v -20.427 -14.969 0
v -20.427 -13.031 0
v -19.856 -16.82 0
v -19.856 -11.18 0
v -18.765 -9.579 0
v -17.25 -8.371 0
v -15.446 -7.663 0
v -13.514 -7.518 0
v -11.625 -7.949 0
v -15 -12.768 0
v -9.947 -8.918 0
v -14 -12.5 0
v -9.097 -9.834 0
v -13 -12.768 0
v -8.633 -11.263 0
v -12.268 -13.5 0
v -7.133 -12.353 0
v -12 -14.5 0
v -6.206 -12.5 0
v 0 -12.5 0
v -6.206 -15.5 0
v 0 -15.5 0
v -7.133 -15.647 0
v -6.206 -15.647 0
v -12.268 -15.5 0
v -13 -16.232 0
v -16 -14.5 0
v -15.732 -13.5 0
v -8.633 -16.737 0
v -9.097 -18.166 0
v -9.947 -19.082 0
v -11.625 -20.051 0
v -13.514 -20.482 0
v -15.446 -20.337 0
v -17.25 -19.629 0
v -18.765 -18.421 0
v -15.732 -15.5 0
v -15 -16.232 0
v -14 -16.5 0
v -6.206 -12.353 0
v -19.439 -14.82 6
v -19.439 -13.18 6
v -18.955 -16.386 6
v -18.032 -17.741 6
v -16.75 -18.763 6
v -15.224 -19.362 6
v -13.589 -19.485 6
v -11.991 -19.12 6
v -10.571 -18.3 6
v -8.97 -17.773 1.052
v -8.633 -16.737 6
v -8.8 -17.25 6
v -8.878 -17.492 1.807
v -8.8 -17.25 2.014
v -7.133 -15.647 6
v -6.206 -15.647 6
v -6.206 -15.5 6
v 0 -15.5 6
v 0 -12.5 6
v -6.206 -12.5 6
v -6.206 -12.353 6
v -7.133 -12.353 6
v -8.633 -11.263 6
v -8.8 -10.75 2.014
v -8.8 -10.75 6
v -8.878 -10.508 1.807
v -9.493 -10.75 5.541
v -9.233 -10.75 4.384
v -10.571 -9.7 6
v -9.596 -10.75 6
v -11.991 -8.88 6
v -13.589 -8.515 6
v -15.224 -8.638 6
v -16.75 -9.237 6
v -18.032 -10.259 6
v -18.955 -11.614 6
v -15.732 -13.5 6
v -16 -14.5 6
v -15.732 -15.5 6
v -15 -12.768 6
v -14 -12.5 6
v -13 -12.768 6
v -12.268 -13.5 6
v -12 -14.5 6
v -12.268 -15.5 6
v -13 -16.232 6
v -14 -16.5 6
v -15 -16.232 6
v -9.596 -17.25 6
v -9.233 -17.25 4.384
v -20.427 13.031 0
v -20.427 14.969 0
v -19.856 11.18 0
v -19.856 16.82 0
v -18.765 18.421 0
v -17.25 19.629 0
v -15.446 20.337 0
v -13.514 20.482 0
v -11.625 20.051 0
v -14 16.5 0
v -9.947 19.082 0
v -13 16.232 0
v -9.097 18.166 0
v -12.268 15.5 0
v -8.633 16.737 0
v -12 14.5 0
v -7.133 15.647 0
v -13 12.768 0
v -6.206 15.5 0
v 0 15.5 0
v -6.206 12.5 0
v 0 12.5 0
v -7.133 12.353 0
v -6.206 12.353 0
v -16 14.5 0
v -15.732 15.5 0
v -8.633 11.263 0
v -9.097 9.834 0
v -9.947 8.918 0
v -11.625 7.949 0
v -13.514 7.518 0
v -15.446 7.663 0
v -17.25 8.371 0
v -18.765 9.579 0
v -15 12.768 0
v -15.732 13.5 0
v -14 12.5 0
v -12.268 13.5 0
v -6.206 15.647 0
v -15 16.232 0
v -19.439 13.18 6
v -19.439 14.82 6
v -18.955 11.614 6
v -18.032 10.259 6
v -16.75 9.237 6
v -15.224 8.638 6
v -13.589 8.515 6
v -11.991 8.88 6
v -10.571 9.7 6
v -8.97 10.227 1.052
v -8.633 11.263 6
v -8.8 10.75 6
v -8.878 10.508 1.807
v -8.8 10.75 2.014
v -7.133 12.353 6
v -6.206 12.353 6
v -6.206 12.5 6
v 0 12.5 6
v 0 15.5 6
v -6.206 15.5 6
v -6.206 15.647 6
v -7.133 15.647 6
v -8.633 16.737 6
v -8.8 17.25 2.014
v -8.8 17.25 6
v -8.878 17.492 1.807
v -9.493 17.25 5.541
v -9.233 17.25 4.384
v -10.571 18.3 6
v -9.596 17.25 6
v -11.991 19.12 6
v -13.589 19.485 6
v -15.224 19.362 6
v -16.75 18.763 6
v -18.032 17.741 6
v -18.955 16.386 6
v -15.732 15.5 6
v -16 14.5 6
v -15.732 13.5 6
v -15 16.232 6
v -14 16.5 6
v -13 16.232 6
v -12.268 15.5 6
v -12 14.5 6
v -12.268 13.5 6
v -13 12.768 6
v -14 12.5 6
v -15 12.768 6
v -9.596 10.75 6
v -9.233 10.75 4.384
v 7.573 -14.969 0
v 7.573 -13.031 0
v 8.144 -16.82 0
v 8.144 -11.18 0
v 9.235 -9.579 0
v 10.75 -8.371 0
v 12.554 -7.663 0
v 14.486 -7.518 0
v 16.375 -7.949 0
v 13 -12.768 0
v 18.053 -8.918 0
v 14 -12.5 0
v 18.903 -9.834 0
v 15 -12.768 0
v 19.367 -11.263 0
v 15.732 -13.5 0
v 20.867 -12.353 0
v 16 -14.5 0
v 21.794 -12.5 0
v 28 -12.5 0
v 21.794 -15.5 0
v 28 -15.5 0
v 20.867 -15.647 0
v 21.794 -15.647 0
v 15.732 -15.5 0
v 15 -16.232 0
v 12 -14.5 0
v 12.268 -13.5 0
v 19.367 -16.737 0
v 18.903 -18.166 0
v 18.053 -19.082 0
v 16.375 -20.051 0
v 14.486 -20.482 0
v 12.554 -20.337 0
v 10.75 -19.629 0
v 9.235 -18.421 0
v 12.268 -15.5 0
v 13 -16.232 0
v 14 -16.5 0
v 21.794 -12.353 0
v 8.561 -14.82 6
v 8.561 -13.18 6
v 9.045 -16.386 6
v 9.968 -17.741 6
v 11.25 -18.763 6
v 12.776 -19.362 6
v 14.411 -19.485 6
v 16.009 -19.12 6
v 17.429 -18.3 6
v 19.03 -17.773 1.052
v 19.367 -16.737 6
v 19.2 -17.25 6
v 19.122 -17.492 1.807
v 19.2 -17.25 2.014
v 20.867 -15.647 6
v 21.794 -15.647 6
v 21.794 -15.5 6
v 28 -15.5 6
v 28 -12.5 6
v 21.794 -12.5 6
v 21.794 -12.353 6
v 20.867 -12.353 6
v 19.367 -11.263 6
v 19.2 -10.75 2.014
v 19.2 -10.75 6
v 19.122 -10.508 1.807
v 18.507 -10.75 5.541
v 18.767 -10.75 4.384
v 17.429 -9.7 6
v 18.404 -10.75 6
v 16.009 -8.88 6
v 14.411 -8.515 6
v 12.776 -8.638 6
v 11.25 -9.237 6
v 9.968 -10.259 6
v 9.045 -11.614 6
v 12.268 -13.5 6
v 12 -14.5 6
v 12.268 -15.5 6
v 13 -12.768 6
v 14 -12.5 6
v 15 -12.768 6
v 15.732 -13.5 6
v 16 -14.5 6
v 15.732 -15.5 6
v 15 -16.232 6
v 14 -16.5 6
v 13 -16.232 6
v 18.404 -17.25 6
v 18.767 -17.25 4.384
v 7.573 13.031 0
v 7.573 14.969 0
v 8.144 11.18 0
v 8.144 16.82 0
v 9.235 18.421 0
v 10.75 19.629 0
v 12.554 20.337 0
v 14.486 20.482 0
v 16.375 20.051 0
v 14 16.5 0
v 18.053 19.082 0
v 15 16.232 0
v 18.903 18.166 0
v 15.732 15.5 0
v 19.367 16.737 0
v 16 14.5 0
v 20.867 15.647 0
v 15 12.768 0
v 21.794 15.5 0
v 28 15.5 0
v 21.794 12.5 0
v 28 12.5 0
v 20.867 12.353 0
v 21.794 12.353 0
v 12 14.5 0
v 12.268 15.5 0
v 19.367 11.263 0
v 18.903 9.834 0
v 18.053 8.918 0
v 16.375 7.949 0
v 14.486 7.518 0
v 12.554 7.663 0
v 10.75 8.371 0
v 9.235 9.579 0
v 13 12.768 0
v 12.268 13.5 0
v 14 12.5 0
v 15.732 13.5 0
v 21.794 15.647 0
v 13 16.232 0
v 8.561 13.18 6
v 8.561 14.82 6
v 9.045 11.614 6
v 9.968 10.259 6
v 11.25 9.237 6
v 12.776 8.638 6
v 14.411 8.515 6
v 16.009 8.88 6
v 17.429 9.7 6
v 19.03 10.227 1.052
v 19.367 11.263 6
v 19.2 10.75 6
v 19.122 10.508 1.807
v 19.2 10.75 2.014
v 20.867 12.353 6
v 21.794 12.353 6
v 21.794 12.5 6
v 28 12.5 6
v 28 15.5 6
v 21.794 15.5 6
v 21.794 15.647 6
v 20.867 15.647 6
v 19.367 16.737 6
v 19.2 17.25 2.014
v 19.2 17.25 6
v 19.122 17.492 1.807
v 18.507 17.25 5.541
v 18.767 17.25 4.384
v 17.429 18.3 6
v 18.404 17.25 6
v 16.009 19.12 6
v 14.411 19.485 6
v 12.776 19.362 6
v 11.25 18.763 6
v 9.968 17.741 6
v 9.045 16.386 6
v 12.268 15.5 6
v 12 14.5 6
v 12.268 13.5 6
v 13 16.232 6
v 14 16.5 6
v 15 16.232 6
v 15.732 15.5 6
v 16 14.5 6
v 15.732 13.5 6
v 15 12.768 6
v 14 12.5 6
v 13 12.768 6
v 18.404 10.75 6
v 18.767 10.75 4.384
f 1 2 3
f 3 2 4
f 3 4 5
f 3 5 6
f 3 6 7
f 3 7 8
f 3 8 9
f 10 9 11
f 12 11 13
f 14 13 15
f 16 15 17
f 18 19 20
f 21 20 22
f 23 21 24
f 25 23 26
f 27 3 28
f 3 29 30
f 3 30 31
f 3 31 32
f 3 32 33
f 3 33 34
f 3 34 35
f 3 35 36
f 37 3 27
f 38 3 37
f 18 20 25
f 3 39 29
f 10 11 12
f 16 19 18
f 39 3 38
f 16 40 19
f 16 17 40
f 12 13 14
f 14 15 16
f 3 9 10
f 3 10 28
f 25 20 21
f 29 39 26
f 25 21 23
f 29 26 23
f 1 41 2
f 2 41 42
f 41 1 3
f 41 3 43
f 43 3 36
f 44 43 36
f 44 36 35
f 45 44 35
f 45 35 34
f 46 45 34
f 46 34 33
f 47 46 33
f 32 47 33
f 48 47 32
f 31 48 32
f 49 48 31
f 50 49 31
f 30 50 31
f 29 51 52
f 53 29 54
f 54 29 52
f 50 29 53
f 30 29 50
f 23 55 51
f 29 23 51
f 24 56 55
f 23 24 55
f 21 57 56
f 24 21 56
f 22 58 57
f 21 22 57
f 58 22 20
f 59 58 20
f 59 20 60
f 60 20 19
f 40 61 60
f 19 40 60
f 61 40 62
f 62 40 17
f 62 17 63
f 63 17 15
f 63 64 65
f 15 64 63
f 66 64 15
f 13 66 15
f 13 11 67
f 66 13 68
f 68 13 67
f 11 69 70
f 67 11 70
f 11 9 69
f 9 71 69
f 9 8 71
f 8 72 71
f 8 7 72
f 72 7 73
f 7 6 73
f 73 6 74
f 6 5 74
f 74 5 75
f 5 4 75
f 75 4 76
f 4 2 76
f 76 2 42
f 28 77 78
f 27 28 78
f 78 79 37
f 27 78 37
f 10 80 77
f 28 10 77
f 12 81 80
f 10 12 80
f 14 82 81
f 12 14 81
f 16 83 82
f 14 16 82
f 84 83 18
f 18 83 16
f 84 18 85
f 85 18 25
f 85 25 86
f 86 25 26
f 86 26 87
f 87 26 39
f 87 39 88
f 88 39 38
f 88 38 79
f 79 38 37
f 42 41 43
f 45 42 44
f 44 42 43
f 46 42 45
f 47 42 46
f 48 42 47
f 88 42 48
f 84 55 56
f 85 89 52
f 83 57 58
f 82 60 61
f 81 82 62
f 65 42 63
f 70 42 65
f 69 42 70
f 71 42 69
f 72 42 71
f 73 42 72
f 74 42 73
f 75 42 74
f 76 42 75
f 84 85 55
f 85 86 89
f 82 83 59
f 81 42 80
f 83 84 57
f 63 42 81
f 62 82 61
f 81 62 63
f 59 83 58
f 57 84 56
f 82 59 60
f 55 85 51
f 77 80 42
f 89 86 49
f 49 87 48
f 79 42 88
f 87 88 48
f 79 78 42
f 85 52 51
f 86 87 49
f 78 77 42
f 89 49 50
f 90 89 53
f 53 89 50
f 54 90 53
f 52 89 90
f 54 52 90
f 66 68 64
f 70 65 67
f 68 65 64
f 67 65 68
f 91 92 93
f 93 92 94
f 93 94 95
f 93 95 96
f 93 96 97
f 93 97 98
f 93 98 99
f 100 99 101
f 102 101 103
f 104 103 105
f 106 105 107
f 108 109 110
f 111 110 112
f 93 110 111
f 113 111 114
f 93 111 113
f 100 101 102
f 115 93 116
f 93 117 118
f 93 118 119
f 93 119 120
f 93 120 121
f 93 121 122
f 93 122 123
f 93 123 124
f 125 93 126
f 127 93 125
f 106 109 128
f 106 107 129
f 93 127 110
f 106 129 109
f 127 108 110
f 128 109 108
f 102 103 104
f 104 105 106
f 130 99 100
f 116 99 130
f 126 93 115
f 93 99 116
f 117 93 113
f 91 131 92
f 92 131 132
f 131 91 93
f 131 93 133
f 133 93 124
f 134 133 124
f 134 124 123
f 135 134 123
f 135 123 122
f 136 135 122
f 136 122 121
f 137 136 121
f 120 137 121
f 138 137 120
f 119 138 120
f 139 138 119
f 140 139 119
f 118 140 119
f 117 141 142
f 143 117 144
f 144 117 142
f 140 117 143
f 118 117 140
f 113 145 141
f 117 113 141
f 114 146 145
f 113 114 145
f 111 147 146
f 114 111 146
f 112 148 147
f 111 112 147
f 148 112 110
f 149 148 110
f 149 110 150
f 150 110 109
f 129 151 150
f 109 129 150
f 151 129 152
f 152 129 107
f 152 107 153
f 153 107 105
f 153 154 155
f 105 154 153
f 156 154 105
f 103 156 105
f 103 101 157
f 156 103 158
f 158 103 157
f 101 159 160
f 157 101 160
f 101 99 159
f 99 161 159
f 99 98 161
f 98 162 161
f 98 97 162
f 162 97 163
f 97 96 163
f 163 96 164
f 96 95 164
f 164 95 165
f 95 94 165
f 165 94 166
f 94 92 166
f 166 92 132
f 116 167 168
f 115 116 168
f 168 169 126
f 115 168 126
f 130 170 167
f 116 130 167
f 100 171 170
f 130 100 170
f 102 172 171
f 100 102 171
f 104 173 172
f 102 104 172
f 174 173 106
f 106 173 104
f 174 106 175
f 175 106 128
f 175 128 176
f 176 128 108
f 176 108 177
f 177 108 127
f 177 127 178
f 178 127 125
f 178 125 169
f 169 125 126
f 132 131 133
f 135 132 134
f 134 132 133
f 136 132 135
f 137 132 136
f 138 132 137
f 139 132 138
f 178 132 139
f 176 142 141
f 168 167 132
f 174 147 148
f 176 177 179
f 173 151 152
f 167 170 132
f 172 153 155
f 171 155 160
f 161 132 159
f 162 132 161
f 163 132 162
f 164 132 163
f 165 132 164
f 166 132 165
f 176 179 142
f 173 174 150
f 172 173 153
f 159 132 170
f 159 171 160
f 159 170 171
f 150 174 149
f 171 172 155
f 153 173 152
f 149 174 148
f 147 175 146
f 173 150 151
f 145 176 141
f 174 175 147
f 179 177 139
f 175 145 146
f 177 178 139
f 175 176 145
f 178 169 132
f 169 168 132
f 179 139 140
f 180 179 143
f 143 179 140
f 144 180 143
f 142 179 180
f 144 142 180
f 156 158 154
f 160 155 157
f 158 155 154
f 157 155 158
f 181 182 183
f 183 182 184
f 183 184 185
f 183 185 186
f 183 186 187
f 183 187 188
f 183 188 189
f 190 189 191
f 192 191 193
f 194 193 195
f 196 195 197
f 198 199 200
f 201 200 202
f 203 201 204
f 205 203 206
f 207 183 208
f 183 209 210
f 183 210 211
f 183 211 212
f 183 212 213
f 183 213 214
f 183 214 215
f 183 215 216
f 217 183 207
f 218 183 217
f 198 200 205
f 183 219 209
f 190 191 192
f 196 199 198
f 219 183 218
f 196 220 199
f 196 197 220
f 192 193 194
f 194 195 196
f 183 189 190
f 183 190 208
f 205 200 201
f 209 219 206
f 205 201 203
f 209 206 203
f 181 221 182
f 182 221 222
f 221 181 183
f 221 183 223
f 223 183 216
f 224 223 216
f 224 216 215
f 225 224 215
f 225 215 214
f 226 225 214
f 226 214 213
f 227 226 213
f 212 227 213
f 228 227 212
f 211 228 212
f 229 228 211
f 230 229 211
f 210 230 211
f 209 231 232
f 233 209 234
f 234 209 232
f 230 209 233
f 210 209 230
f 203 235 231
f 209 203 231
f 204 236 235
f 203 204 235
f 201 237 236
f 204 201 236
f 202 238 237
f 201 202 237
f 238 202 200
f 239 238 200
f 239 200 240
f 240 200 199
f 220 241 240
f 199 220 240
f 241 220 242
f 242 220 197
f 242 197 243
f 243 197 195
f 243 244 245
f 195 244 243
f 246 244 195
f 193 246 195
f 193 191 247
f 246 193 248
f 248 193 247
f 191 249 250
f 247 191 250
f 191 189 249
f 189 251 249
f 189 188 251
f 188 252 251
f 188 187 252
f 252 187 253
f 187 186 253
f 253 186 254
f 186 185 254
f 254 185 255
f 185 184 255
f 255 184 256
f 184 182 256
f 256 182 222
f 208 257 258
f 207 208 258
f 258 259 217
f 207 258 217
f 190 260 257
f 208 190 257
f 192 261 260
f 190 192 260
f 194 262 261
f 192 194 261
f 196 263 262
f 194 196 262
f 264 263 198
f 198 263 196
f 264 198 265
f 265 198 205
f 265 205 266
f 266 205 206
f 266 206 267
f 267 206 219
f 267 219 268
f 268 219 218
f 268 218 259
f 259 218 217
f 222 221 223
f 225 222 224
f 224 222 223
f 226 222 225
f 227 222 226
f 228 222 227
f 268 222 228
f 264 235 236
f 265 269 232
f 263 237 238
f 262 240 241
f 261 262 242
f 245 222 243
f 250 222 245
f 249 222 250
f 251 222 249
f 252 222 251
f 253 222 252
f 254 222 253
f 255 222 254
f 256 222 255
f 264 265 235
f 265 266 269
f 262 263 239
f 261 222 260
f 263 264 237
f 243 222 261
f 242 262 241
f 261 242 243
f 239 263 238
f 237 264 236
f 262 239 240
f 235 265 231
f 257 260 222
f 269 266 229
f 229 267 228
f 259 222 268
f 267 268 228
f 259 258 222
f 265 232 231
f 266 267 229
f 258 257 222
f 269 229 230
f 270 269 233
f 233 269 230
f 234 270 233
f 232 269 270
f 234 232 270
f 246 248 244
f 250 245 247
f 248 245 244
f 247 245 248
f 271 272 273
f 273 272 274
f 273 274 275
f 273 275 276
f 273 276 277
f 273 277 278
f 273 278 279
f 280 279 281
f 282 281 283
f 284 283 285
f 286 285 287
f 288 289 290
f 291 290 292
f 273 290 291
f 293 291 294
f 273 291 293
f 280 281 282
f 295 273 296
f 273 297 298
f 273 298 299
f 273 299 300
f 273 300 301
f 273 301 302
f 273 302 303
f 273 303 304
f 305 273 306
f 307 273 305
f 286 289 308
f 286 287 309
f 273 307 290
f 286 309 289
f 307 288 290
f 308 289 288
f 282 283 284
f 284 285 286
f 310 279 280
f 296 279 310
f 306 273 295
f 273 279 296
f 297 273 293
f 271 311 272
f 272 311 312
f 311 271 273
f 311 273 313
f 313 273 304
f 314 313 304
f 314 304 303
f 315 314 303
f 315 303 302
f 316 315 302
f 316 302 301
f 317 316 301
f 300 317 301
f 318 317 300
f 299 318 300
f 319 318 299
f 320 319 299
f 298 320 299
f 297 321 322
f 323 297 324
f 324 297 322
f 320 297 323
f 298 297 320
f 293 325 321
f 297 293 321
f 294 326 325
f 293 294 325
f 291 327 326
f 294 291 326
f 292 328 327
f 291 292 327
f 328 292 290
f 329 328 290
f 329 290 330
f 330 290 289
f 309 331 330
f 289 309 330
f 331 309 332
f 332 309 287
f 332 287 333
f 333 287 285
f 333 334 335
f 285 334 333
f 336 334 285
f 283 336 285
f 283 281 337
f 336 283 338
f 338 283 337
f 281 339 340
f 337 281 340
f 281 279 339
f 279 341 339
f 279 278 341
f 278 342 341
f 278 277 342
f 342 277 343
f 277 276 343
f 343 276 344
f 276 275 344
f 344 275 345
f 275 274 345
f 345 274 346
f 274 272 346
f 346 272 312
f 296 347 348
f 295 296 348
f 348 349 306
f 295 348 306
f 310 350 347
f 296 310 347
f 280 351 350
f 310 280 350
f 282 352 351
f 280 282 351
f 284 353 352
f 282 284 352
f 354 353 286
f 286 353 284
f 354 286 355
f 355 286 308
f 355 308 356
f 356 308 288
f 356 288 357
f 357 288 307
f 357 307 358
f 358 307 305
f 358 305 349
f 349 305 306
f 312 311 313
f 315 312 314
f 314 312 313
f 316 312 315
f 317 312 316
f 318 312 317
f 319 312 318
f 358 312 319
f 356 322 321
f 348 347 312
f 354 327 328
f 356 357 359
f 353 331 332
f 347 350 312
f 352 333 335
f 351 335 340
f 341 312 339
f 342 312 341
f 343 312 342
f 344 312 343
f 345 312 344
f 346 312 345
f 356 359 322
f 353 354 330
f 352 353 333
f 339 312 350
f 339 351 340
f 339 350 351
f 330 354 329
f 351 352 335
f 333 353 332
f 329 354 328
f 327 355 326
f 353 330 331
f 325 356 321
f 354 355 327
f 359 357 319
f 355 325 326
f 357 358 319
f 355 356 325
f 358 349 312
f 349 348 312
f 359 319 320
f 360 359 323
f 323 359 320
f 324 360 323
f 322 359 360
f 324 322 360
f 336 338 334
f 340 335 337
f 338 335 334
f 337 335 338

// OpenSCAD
// od1 = Outside diameter at base
// od2 = Outside diameter at top
// id = inside (hole) diameter
// rt = retainer thickness
// ho = hole offset
// ll = lever length
// lt = lever thickness (width)
// d  = delta
module PrintBedRetainer(od1, od2, id, rt, ho, ll, lt, d)
{
    s30 = sin(30);
    c30 = cos(30);
    lfr = (od1+od2)/4-lt;     // Lever fillet radius      
    lfp = (od1+od2)/4+lfr;    // Lever fillet pitch radius
    intersection()
    {
        difference()
        {
            union()
            {
                cylinder(r1=od1/2, r2=od2/2, h=rt);
                translate([0,-od1/4,0]) cube(size=[ll, od1/2, rt]);
            }
                translate([0,ho,-d]) cylinder(r=id/2, h=rt+2*d, $fn=12);    
                translate([c30*lfp,-s30*lfp,-d])
            {   
                cylinder(r=lfr, h=rt+2*d);
                translate([0,-lfr,0]) cube(size=[ll, lfr*2, rt+2*d] );
            }
            translate([c30*lfp,+s30*lfp,-d])
            {   
                cylinder(r=lfr, h=rt+2*d);
                translate([0,-lfr,0]) cube(size=[ll, lfr*2, rt+2*d] );
            }
        }
    }
}

// Actual objects here

ll = 14;
for (xo = [-ll, ll])
{
    for ( yo = [-ll, ll])
    {
        translate([xo, yo, 0])
        //               od1 od2 id rt  ho   ll  lt d
        PrintBedRetainer(13,  11, 4, 6, 0.5*sign(yo), ll, 3, 1);
    }
}
